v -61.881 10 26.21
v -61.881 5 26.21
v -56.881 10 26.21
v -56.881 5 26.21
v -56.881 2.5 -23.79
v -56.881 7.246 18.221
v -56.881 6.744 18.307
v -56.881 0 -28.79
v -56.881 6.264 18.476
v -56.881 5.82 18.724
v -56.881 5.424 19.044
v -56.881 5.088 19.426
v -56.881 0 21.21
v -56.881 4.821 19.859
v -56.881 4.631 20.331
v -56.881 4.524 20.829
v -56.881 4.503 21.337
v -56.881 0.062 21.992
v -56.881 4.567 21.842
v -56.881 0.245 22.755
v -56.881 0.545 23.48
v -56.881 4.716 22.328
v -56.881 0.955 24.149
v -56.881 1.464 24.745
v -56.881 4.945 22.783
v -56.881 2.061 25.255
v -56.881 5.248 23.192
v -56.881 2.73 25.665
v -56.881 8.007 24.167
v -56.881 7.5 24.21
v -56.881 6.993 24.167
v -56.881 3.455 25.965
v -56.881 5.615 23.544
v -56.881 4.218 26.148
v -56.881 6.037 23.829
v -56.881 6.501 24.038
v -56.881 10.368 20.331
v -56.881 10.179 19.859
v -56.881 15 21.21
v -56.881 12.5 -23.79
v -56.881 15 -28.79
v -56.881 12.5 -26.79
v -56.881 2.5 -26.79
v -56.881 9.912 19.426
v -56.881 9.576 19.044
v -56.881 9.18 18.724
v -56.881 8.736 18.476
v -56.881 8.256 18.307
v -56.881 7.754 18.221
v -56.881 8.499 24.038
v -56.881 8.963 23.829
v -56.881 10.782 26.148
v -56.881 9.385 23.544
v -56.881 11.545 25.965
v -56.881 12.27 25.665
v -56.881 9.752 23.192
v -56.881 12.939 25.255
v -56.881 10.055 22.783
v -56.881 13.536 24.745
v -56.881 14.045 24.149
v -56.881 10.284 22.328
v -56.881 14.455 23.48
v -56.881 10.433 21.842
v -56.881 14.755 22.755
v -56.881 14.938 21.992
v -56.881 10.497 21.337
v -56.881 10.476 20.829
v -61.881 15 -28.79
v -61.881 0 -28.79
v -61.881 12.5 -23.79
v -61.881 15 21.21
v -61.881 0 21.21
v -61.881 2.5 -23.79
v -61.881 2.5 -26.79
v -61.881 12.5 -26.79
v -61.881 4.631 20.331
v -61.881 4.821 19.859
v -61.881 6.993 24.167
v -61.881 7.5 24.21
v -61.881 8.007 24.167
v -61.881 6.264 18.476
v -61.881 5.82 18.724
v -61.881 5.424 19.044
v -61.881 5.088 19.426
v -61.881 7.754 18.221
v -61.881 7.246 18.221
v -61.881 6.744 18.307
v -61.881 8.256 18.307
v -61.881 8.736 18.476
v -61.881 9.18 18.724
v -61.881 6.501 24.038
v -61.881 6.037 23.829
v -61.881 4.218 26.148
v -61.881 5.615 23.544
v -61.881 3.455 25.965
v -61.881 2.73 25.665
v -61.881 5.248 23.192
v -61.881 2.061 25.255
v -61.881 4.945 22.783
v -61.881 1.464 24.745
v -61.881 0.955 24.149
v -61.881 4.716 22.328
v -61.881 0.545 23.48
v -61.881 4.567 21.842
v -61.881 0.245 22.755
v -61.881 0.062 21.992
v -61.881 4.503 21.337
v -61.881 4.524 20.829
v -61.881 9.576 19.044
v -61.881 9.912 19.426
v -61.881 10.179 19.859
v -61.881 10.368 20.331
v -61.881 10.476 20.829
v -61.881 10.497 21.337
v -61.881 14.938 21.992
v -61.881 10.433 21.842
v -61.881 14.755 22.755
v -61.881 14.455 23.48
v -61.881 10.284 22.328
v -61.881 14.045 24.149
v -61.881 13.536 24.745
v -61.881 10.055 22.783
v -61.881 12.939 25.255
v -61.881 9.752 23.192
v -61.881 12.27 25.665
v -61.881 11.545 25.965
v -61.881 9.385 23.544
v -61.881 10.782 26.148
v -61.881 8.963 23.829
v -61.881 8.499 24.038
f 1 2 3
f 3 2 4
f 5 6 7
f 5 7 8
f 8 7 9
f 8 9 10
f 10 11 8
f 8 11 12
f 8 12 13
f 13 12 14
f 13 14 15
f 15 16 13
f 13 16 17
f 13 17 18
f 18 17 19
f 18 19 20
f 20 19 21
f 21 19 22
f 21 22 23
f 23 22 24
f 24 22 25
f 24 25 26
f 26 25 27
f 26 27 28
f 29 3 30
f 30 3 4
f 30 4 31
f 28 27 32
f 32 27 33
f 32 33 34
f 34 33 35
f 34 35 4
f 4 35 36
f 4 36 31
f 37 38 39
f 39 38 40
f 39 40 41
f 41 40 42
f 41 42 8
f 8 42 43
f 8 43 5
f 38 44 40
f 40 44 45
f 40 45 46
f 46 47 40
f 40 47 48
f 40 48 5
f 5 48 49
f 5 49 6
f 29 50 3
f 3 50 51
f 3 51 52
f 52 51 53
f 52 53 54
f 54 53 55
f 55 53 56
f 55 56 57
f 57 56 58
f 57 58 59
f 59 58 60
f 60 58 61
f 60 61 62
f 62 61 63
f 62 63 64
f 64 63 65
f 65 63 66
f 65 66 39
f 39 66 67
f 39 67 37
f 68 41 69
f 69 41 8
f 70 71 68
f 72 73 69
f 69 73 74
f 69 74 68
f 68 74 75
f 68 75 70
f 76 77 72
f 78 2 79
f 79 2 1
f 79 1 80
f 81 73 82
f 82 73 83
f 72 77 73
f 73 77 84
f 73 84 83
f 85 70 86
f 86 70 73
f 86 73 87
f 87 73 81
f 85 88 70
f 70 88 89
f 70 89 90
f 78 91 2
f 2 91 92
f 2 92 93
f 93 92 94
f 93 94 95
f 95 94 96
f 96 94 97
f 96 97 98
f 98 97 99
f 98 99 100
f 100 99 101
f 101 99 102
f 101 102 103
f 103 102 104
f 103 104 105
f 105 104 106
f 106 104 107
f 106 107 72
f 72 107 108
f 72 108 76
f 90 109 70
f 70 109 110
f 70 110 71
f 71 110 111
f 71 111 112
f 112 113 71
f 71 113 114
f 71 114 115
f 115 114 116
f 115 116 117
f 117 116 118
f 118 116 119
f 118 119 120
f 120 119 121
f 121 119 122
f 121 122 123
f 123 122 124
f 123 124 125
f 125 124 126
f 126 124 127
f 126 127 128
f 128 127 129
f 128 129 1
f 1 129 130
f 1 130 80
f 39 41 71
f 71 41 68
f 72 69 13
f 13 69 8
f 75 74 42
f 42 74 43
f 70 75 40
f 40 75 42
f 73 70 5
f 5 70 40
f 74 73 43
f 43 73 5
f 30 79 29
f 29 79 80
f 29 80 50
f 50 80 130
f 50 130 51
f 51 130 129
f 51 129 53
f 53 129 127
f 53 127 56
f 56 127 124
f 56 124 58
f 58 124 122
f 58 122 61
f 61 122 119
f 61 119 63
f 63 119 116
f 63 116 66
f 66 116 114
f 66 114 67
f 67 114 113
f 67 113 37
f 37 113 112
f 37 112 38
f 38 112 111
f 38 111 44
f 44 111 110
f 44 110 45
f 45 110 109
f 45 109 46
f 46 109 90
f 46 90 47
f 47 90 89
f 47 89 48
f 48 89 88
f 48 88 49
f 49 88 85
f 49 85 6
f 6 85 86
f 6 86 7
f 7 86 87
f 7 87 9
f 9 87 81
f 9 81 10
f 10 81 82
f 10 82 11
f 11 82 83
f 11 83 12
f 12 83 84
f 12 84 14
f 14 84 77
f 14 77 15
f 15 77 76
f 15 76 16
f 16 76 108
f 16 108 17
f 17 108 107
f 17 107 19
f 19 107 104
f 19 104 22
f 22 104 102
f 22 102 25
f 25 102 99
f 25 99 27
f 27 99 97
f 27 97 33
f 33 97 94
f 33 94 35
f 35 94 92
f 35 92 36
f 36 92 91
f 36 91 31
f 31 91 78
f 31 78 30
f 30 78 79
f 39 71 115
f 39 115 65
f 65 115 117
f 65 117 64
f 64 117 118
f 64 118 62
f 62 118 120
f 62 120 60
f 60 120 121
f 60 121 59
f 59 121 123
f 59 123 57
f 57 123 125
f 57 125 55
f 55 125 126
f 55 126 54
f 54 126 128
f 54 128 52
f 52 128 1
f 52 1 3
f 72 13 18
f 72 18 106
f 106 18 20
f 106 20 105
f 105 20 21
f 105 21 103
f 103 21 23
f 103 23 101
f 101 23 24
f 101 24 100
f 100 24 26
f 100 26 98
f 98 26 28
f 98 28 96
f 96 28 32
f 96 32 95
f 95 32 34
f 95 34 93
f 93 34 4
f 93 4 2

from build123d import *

# Parameters (mm, degrees)
BOSS_EXTRUDE1_DEPTH = 15
SKETCH2_R           = 3
SKETCH2_W           = 3
SKETCH2_H           = 10
CUT_EXTRUDE1_DEPTH  = 5
FILLET1_R           = 5


with BuildPart() as part:
    # Sketch1 → Boss-Extrude1 (new body)
    with BuildSketch(Plane(origin=(0, 0, 0), x_dir=(1, 0, 0), z_dir=(0, 1, 0))):
        Polygon((-61.880536913, 28.790268456), (-61.880536913, -26.209731544), (-56.880536913, -26.209731544), (-56.880536913, 23.790268456), (-56.880536913, 28.790268456), align=None)
    extrude(amount=BOSS_EXTRUDE1_DEPTH)

    # Sketch2 → Cut-Extrude1 (cut)
    with BuildSketch(Plane.ZY.offset(61.880536913)):
        with Locations((21.209731544, 7.5)):
            Circle(SKETCH2_R)
        with Locations((-25.290268456, 7.5)):
            Rectangle(SKETCH2_W, SKETCH2_H)
    extrude(amount=-CUT_EXTRUDE1_DEPTH, mode=Mode.SUBTRACT)

    # Fillet1
    fillet1_edges = [part.edges().sort_by_distance(p)[0] for p in [
        (-59.380536913, 15, 26.209731544),
        (-59.380536913, 0, 26.209731544),
    ]]
    fillet(fillet1_edges, radius=FILLET1_R)


solid = part.part
